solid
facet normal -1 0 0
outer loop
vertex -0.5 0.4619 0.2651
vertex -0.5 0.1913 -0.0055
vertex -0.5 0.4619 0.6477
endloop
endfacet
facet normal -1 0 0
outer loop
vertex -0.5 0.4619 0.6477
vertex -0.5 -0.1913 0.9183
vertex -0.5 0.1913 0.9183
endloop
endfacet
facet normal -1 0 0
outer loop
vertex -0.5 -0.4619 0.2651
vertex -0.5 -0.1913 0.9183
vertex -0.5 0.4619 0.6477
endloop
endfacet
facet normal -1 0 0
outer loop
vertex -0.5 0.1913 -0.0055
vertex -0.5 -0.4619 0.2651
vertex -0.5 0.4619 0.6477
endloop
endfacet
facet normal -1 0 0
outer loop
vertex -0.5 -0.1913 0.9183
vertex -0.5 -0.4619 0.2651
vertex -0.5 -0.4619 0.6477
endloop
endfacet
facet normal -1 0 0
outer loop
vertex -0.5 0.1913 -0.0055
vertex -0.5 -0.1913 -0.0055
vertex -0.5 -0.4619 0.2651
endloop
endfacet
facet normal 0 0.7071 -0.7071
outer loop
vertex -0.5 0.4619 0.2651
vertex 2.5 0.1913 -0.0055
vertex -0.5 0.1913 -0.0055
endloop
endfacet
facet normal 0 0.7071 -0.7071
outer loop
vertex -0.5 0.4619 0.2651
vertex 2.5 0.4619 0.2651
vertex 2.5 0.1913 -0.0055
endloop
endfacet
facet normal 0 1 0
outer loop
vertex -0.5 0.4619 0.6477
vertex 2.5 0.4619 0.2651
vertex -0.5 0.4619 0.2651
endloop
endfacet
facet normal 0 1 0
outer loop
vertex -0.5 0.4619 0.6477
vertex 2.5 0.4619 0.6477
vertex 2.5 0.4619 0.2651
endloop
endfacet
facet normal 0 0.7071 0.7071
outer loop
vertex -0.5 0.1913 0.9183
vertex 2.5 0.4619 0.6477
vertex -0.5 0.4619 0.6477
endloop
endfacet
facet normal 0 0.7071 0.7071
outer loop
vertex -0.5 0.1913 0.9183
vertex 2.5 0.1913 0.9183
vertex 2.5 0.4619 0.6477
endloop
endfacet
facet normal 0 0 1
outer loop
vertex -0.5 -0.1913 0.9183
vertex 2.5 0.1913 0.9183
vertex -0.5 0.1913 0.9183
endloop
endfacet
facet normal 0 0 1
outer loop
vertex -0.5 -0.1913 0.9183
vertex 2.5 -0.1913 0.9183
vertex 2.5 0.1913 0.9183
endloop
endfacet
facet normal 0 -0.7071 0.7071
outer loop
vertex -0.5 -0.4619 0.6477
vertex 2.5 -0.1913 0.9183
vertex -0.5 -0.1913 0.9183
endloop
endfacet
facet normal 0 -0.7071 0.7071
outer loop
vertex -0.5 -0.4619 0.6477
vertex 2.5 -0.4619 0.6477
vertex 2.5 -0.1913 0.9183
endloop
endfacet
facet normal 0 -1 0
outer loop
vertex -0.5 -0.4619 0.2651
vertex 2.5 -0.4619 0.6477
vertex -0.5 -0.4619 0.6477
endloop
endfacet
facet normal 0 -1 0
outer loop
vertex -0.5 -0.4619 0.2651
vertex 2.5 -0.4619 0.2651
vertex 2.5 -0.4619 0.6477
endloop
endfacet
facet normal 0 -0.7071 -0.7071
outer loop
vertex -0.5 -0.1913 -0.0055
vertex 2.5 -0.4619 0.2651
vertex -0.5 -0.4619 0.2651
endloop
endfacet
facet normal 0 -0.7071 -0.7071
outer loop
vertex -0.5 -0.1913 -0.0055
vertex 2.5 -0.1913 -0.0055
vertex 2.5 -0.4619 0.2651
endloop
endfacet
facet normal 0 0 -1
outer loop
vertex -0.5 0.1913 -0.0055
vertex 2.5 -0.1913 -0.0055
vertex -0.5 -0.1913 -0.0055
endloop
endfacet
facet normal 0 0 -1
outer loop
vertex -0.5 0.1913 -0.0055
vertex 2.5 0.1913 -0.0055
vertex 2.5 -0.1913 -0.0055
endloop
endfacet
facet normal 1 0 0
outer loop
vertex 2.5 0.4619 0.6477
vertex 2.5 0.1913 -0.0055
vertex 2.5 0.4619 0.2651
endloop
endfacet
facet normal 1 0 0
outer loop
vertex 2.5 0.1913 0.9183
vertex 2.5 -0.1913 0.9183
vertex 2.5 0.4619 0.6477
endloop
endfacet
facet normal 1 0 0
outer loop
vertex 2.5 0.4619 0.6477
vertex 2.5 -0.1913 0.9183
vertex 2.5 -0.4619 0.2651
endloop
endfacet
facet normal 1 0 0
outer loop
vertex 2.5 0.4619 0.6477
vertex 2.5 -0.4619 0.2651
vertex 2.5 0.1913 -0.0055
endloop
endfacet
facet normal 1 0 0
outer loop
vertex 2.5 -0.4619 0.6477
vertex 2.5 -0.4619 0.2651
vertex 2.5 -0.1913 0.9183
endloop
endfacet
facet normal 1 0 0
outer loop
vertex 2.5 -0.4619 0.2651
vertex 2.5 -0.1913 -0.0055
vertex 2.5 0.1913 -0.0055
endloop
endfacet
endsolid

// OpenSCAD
//Octangonal Prism for Stacks of Shapes
//by Slashee the Cow

color("Chocolate")
translate([-0.5,0,0.4564])
rotate([22.5,0,0])
rotate([0,90,0])
linear_extrude(3, false)
circle(d  = 1, $fn = 8);
